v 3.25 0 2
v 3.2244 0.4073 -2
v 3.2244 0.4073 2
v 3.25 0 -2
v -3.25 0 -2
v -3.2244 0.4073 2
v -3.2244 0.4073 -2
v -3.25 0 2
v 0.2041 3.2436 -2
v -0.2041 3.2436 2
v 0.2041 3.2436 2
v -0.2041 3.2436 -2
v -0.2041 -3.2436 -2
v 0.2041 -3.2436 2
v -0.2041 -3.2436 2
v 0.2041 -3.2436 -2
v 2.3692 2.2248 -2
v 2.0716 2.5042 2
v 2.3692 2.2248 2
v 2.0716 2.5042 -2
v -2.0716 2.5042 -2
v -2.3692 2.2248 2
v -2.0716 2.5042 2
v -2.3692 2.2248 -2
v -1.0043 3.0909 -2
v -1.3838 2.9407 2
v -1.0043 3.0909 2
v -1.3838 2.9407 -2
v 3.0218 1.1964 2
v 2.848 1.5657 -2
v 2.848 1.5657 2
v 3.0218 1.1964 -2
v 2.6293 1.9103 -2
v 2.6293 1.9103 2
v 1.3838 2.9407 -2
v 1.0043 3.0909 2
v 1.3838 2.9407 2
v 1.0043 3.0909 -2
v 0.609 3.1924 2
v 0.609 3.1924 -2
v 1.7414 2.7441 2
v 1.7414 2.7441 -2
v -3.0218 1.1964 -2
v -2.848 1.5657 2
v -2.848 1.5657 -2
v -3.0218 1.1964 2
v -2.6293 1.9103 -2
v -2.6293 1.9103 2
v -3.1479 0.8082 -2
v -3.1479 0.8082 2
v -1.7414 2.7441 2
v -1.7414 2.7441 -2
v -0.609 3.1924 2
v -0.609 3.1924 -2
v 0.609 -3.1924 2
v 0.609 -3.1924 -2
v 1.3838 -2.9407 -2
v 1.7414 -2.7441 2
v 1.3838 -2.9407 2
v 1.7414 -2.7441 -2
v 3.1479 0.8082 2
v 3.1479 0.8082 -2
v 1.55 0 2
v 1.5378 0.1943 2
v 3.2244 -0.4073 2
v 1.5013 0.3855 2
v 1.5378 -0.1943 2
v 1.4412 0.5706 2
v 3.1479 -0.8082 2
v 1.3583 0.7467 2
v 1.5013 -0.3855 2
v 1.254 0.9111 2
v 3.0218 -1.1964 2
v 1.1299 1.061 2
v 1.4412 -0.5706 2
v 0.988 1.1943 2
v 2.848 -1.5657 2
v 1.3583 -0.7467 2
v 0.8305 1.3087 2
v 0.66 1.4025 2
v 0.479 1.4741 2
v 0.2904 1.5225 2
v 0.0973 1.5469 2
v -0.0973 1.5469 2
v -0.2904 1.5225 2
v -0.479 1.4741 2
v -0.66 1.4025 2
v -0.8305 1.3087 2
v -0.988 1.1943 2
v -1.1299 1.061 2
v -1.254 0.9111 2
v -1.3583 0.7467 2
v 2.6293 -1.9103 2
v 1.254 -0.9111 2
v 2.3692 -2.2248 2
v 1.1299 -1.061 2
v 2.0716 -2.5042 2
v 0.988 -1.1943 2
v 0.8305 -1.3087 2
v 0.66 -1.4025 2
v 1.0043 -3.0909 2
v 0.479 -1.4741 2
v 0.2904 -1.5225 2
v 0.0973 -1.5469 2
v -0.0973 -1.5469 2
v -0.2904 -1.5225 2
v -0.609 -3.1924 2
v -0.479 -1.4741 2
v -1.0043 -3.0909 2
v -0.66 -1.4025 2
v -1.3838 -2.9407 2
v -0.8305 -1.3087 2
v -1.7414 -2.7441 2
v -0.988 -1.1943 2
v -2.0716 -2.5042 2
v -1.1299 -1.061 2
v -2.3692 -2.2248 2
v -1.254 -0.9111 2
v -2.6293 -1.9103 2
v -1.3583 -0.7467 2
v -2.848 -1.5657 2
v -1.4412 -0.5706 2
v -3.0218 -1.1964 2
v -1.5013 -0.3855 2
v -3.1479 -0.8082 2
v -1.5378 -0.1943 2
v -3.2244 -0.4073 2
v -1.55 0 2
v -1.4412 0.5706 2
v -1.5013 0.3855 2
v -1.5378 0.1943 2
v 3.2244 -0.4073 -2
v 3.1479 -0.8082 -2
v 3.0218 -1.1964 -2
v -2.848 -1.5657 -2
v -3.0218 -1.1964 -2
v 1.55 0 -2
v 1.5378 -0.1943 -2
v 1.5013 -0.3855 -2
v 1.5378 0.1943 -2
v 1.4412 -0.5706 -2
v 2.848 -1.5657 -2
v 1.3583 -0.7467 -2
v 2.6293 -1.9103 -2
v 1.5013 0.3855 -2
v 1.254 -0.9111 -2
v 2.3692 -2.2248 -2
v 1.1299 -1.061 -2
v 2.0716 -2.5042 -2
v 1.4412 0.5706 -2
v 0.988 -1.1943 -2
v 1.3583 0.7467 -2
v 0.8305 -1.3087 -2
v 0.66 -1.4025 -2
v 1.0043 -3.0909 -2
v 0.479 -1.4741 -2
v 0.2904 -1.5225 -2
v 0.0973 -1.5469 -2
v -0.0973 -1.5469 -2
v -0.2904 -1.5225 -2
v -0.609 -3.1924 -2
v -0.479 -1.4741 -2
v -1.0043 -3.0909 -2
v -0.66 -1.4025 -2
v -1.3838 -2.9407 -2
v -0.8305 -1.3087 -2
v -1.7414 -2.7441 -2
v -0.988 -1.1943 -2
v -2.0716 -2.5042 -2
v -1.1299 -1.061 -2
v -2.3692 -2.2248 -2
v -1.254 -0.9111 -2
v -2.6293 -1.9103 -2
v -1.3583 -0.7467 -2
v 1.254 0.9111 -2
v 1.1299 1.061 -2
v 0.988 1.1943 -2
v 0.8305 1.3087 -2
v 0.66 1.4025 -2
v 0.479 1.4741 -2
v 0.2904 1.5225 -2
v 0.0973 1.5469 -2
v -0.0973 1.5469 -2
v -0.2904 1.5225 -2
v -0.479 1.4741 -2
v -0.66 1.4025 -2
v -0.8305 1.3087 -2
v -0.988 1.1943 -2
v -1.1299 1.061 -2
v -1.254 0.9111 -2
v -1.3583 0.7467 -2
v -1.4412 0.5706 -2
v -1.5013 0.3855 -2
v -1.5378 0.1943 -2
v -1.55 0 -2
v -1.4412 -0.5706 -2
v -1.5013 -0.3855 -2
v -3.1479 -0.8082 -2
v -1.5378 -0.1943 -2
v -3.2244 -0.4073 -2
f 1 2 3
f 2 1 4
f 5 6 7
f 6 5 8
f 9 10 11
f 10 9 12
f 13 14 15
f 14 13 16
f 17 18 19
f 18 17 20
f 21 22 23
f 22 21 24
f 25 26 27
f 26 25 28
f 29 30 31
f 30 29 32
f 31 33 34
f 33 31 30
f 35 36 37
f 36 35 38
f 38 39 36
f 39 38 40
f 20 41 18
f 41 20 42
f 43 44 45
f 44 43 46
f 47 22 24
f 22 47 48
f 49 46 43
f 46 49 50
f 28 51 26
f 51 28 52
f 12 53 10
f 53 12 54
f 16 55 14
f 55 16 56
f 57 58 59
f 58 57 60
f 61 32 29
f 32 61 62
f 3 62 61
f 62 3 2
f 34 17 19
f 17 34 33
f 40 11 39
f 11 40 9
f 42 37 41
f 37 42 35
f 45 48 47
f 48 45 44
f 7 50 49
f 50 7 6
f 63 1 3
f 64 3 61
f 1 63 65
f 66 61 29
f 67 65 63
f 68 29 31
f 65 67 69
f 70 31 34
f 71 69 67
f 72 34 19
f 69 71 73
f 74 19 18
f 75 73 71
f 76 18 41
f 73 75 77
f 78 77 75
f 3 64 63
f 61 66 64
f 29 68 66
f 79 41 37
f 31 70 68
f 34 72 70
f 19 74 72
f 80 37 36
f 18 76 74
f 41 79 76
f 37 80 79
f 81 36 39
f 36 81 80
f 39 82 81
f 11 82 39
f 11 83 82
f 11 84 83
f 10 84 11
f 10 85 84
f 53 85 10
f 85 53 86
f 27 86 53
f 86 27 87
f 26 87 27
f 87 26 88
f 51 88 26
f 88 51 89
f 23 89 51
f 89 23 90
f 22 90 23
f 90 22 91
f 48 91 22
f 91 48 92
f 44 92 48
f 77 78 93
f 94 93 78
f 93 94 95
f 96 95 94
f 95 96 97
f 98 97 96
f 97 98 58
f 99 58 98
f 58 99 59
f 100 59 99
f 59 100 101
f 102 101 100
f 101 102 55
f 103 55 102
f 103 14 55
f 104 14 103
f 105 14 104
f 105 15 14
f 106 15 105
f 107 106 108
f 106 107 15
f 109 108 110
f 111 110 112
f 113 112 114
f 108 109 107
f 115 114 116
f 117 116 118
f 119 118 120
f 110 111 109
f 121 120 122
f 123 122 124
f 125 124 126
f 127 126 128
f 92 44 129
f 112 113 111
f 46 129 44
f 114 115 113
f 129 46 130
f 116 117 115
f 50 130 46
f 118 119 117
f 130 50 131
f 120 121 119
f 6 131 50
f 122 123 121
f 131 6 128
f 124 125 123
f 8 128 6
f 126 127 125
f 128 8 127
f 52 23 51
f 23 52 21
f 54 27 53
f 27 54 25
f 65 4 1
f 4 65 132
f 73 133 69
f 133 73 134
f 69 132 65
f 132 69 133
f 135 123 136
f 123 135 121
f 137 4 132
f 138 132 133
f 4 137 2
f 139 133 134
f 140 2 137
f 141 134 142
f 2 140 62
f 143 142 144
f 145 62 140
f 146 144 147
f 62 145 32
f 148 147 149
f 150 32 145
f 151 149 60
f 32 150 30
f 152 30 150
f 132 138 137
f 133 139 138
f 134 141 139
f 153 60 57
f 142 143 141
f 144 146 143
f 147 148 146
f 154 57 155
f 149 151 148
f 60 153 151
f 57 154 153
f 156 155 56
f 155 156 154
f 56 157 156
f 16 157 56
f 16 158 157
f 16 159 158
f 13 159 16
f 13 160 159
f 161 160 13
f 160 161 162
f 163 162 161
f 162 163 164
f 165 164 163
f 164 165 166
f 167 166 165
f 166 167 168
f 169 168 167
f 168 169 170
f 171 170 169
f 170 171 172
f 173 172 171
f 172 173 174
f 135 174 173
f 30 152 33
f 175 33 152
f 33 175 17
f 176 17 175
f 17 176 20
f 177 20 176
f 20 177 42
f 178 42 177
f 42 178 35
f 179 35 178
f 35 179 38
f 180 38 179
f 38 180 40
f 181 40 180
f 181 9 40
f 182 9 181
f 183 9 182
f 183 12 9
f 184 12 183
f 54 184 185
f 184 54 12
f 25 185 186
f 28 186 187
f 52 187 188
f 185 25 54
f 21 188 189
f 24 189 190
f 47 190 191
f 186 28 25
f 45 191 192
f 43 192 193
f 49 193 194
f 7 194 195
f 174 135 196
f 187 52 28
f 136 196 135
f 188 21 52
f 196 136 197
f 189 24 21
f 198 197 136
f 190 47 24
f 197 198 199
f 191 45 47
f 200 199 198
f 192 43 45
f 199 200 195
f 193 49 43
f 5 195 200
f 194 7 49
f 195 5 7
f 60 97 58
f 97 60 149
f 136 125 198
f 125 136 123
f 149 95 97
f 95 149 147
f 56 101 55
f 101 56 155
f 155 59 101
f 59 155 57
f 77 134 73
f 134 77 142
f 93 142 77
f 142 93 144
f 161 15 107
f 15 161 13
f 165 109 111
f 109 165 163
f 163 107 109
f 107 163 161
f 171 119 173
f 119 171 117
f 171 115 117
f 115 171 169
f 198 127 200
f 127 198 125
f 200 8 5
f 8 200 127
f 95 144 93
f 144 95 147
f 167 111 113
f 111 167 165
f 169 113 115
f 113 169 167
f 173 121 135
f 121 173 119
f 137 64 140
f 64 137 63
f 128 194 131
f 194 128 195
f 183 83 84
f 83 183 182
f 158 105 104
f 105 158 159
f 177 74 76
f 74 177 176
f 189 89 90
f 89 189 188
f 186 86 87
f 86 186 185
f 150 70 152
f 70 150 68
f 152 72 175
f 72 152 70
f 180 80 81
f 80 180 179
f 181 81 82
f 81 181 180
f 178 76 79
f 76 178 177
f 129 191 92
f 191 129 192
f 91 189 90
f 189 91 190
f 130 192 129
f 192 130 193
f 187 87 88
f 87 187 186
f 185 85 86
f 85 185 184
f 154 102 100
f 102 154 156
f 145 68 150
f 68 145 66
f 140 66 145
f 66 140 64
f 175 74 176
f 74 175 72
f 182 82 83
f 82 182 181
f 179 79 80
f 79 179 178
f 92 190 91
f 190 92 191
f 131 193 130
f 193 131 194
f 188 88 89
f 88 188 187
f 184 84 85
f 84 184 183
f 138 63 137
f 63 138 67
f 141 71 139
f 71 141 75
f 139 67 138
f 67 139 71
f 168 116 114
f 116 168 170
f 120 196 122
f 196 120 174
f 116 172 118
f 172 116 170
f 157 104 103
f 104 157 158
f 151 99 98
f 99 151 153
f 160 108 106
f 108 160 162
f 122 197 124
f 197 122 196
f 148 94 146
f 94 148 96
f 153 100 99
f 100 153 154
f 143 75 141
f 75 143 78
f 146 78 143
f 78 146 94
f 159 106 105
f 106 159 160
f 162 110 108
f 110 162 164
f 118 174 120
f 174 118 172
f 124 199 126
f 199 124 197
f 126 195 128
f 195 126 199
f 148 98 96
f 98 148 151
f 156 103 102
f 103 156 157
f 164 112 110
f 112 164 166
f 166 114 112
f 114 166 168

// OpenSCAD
$fn = 50;


difference() {
	union() {
		translate(v = [0, 0, -2.0000000000]) {
			cylinder(h = 4, r = 3.2500000000);
		}
	}
	union() {
		translate(v = [0, 0, -100.0000000000]) {
			cylinder(h = 200, r = 1.5500000000);
		}
	}
}
